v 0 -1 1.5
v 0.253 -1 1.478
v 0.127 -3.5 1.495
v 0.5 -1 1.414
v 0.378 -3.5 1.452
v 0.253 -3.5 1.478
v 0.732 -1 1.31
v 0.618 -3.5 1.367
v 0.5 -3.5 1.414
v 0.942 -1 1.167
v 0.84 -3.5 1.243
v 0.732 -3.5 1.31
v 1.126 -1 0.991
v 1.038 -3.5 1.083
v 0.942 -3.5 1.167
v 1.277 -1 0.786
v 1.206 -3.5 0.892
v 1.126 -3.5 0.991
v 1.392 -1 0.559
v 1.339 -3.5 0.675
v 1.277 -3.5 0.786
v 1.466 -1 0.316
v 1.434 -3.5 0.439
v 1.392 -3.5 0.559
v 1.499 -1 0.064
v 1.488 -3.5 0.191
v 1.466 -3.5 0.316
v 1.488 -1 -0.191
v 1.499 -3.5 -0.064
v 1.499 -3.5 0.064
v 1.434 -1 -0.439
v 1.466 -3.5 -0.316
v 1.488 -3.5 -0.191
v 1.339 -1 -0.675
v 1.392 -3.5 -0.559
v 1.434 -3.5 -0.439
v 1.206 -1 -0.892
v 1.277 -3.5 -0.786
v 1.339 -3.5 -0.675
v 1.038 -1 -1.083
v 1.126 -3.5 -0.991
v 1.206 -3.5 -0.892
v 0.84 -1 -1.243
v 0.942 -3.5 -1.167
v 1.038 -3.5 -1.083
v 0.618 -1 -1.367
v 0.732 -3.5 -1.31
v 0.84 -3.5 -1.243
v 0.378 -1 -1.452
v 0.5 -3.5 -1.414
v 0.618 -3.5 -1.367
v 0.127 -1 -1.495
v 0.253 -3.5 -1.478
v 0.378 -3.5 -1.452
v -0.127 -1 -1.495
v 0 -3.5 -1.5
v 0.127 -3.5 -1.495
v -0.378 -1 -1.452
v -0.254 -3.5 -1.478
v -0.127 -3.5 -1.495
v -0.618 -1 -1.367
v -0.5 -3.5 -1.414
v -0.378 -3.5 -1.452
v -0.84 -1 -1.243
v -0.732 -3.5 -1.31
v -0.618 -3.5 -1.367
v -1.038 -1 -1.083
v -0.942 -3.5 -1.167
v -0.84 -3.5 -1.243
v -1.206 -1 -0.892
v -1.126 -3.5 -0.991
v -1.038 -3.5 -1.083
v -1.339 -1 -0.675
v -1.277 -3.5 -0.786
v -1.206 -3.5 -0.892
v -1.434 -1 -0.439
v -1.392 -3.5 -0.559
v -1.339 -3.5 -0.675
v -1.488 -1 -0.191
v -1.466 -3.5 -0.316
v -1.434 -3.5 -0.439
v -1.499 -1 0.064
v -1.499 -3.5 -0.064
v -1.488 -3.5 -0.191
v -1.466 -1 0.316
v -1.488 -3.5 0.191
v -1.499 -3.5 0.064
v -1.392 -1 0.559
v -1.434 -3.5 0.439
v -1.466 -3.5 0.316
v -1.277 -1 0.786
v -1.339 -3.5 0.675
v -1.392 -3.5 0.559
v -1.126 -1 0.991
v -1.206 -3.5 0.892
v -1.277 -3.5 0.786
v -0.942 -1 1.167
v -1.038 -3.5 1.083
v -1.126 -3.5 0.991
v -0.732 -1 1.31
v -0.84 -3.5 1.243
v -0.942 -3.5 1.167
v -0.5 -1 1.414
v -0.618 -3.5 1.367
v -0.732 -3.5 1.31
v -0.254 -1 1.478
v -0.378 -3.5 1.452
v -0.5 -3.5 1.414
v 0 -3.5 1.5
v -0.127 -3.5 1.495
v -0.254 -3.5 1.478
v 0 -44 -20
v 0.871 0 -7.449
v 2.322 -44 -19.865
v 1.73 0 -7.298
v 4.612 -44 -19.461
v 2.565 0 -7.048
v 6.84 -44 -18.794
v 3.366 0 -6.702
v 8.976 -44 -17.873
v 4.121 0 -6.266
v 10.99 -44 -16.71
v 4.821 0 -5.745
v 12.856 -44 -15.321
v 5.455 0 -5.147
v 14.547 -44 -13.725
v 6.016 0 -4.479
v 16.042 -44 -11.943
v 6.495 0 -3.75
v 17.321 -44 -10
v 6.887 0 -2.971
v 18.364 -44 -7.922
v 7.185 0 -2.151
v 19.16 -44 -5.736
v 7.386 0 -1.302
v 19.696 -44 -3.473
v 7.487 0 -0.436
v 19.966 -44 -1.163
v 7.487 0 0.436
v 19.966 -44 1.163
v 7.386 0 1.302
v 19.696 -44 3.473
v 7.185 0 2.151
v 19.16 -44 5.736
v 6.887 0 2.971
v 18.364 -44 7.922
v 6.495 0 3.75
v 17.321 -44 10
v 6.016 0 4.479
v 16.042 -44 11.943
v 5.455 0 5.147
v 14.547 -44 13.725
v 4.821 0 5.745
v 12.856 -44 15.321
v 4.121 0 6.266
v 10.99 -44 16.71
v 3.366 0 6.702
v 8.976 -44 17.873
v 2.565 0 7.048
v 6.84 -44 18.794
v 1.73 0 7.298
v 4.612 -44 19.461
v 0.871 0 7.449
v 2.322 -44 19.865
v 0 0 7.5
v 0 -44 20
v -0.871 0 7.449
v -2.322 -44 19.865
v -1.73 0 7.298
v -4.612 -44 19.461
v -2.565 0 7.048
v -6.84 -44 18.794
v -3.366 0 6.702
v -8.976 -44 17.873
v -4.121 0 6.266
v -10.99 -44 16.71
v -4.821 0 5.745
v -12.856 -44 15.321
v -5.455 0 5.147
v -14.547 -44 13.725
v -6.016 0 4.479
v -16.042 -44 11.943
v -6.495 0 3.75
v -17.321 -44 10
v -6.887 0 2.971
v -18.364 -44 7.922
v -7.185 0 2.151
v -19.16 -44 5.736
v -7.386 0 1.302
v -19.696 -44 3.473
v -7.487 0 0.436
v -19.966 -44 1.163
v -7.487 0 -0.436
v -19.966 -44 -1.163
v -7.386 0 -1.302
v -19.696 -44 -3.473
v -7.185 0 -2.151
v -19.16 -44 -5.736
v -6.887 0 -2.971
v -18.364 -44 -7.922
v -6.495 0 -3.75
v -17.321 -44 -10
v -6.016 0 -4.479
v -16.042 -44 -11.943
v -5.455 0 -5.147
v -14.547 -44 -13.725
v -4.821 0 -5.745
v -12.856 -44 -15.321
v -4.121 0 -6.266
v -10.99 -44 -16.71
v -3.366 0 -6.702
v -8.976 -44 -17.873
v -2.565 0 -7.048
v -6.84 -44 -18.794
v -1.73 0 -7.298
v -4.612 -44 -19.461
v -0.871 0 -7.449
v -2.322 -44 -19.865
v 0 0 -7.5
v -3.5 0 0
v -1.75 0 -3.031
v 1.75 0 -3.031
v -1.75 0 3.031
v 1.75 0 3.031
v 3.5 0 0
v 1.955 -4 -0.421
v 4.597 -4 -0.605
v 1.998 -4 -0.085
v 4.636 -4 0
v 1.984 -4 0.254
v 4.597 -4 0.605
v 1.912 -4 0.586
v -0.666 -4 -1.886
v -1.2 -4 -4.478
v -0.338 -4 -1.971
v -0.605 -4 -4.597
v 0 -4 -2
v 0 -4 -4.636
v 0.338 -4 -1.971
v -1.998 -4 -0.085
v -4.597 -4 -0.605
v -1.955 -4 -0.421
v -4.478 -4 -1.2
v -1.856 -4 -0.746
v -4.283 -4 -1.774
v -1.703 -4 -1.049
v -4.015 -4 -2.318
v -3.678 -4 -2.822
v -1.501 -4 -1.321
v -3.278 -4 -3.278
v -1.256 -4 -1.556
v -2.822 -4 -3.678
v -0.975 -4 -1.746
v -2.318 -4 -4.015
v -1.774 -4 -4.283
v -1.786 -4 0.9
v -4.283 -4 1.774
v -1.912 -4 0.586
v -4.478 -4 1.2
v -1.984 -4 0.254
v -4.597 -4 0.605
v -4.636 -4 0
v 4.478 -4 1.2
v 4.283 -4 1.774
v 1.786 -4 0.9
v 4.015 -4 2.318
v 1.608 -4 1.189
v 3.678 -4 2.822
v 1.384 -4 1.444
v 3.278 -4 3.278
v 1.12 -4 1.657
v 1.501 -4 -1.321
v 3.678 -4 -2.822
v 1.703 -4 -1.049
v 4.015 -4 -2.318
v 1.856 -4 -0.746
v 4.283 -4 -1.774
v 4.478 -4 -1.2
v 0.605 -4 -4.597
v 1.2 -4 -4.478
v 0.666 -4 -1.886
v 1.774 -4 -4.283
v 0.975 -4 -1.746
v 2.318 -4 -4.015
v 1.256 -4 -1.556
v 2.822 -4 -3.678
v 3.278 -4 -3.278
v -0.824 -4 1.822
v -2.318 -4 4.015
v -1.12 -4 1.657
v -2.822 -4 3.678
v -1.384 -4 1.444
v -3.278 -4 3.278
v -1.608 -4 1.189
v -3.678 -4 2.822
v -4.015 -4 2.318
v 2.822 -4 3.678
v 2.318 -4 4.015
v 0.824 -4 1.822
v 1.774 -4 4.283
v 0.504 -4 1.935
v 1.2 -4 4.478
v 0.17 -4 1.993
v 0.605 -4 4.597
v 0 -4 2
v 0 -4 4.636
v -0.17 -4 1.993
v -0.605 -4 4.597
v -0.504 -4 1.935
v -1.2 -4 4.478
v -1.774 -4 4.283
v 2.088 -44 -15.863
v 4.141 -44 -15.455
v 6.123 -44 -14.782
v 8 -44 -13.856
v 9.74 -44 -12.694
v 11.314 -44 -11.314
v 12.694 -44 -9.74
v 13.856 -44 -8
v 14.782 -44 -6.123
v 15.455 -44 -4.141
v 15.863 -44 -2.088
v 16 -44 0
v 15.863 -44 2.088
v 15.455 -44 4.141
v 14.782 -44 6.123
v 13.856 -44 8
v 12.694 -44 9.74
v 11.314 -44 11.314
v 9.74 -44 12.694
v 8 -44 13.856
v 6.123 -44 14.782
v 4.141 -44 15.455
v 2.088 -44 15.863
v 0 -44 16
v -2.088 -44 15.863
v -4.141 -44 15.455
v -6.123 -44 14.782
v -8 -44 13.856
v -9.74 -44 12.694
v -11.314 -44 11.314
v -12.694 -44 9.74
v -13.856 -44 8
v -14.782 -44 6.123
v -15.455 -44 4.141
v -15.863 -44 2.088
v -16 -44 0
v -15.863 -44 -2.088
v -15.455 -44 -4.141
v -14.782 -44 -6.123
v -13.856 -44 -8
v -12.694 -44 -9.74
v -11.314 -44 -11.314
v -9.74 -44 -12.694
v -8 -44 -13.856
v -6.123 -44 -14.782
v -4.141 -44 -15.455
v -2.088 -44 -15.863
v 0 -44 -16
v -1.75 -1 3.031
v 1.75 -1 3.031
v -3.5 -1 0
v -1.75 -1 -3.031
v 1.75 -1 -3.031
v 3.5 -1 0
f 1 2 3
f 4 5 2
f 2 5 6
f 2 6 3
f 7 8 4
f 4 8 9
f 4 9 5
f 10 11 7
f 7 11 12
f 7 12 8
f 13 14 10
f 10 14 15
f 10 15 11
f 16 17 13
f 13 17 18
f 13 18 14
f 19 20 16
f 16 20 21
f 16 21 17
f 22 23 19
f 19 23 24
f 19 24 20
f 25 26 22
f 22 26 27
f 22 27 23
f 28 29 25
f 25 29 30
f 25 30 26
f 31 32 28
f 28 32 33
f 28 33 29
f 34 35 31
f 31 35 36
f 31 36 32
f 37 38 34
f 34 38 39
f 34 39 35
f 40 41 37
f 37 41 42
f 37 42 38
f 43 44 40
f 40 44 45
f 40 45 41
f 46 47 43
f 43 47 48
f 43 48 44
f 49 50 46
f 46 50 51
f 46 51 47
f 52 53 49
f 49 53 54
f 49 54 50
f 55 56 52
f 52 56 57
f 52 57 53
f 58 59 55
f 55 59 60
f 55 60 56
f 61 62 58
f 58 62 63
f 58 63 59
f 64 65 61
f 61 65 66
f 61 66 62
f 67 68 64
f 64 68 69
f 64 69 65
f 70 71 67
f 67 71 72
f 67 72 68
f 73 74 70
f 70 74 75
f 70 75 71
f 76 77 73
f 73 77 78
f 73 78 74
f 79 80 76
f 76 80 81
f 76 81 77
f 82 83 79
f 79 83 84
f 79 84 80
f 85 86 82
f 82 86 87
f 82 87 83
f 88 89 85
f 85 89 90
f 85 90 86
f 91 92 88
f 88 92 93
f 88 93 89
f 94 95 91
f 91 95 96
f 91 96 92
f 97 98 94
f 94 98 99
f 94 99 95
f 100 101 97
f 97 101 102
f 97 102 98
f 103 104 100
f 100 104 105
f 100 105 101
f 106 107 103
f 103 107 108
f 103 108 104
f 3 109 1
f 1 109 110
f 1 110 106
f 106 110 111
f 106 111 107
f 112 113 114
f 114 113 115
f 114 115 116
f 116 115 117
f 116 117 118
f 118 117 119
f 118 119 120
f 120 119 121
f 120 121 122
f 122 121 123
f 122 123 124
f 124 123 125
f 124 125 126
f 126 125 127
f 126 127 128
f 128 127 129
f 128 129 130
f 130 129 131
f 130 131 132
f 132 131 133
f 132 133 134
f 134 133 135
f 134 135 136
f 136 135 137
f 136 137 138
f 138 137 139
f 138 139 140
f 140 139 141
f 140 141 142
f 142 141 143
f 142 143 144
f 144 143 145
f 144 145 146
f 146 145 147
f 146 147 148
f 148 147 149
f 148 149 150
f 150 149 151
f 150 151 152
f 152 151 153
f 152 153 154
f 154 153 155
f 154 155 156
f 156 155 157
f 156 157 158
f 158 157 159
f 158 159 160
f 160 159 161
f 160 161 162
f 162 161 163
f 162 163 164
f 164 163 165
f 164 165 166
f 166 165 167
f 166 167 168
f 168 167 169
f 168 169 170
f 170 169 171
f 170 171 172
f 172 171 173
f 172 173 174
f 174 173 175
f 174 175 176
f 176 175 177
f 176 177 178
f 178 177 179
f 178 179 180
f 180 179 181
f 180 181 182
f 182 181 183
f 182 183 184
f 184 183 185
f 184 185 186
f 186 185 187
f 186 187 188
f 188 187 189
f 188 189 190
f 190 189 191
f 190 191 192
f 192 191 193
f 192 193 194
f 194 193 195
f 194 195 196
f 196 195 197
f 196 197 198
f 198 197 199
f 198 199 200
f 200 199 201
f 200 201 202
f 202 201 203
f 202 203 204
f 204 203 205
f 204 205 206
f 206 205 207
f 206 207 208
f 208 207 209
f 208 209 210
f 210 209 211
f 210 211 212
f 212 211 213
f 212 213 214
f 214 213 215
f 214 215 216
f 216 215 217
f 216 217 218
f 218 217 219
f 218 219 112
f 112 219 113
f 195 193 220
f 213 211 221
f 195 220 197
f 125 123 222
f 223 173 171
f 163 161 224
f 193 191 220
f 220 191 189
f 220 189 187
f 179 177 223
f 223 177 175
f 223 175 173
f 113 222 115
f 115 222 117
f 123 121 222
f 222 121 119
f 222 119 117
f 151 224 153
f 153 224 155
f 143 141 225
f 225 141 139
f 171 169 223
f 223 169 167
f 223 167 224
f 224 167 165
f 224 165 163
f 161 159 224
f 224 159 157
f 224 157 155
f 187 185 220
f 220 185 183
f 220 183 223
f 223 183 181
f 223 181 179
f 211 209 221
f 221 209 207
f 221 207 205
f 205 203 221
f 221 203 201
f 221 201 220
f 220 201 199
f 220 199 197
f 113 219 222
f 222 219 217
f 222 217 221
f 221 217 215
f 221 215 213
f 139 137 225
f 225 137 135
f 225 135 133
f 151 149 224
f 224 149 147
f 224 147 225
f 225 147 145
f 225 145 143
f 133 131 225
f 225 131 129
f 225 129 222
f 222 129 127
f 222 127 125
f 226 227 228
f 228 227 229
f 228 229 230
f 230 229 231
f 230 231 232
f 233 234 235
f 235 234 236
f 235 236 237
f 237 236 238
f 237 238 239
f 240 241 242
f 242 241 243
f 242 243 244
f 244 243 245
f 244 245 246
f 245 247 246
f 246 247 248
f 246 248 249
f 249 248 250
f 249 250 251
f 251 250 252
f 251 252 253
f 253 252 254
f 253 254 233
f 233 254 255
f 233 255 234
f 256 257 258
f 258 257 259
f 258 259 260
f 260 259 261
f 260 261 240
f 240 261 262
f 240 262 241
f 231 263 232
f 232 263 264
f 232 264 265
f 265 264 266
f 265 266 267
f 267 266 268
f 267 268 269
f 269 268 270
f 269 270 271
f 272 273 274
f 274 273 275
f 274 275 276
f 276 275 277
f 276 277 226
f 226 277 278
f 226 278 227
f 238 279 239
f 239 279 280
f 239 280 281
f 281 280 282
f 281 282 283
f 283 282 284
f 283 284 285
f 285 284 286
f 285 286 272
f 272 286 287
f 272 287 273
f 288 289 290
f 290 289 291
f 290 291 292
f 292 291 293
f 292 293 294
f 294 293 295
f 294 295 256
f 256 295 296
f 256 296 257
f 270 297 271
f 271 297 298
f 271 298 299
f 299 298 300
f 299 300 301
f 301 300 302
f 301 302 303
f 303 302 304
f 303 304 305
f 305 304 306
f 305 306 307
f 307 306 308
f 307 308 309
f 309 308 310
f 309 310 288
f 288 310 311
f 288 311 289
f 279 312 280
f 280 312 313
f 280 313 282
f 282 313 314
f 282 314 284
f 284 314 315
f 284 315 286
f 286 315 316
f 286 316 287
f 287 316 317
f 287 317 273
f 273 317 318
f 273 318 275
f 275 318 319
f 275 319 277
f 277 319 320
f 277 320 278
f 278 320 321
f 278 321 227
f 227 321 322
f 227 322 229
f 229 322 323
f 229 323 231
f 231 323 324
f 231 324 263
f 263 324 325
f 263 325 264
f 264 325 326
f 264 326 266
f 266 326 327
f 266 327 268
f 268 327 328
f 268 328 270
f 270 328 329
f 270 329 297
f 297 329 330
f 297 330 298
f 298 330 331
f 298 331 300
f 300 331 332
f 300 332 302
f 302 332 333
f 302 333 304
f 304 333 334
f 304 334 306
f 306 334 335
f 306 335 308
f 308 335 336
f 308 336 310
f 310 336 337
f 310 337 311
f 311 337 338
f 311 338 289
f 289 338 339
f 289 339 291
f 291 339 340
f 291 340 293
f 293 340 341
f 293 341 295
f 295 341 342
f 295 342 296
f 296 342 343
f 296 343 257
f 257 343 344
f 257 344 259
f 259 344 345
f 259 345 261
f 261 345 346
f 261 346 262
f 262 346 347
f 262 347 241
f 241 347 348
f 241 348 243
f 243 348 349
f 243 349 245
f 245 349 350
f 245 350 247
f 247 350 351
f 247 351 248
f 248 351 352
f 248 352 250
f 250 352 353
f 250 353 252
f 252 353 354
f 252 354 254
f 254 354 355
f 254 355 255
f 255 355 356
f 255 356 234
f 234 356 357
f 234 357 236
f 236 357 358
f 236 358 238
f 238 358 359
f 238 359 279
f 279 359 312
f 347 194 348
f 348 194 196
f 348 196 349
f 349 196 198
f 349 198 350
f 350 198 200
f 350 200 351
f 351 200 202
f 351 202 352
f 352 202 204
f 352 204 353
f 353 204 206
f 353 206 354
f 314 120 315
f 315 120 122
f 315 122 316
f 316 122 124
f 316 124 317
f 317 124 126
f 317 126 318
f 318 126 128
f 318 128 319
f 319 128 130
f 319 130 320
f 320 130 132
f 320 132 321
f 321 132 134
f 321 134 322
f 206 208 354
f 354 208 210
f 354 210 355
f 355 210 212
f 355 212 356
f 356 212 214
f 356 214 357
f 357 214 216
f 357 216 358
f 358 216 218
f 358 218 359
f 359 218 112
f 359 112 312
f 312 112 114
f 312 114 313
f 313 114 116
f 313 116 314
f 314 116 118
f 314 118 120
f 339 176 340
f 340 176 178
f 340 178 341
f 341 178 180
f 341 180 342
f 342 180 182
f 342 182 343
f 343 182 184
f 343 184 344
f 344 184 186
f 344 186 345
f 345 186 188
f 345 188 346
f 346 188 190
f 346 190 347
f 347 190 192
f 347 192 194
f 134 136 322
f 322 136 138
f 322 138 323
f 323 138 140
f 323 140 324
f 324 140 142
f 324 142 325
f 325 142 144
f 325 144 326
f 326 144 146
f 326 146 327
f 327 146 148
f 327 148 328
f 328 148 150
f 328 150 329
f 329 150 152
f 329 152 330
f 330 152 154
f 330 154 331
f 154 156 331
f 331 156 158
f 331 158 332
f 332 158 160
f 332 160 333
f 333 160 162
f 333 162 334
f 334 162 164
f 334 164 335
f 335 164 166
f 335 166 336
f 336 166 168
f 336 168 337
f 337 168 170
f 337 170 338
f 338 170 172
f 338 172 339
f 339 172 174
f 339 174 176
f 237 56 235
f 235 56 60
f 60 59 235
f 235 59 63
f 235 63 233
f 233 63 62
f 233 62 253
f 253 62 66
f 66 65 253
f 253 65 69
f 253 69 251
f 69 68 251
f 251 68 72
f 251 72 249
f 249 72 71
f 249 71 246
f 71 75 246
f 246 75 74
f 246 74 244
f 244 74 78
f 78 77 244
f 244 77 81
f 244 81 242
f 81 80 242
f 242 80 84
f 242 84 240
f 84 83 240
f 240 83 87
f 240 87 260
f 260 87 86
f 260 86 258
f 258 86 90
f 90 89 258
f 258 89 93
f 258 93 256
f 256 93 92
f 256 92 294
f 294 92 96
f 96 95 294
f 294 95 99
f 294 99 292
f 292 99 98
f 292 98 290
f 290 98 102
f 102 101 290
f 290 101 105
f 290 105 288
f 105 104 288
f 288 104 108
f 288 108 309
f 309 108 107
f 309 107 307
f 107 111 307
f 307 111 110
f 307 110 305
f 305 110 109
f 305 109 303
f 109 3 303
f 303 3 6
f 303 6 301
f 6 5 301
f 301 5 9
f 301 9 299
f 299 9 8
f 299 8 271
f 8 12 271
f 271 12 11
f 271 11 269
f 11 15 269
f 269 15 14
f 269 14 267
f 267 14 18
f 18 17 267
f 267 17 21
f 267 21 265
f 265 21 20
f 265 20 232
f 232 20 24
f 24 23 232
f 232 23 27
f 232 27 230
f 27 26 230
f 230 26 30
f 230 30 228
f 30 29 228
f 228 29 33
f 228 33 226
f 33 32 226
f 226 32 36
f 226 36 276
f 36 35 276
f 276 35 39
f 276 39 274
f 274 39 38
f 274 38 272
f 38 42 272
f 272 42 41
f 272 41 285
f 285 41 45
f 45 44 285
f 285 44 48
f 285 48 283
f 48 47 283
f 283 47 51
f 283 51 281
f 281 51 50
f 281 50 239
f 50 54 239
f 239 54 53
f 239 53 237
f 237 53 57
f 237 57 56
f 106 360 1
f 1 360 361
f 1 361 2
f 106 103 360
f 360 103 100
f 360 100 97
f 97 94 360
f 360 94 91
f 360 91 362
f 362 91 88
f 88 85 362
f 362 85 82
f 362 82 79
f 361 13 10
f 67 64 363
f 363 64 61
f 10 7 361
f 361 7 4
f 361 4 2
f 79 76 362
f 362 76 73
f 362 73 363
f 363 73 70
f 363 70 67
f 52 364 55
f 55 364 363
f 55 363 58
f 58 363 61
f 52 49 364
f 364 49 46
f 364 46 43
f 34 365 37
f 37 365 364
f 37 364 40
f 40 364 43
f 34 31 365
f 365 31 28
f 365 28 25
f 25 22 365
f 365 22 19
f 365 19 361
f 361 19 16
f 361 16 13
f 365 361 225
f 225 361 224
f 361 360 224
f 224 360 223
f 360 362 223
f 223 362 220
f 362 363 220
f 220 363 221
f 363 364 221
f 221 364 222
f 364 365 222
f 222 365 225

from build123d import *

# Parameters (mm, degrees)
SKETCH_4_R          = 1.5
CUT_EXTRUDE_1_DEPTH = 10
CHAMFER_1_SIZE      = 0.5
CUT_EXTRUDE_2_DEPTH = 1


with BuildPart() as part:
    # 草图3 → 旋转1 (revolve)
    with BuildSketch(Plane(origin=(0, 0, 0), x_dir=(0, 0, -1), z_dir=(1, 0, 0)), mode=Mode.PRIVATE) as revolve_1_sk:
        Polygon((-7.5, 0), (0, 0), (0, -4), (-4.636363636, -4), (-16, -44), (-20, -44), align=None)
    revolve(revolve_1_sk.sketch.rotate(Axis((0, 28.450677981, 0), (0, 1, 0)), 180), axis=Axis((0, 28.450677981, 0), (0, 1, 0)))

    # 草图4 → 切除-拉伸1 (cut)
    with BuildSketch(Plane(origin=(0, 0, 0), x_dir=(1, 0, 0), z_dir=(0, 1, 0))):
        with Locations(Location((0, 0, 0), (0, 0, 270))):
            Circle(SKETCH_4_R)
    extrude(amount=-CUT_EXTRUDE_1_DEPTH, mode=Mode.SUBTRACT)

    # 倒角1
    chamfer_1_edges = [part.edges().sort_by_distance(p)[0] for p in [
        (0, -4, -1.5),
    ]]
    chamfer(chamfer_1_edges, length=CHAMFER_1_SIZE)

    # 草图5 → 切除-拉伸2 (cut)
    with BuildSketch(Plane(origin=(0, 0, 0), x_dir=(1, 0, 0), z_dir=(0, 1, 0))):
        Polygon((3.5, 0), (1.75, 3.031088913), (-1.75, 3.031088913), (-3.5, 0), (-1.75, -3.031088913), (1.75, -3.031088913), align=None)
    extrude(amount=-CUT_EXTRUDE_2_DEPTH, mode=Mode.SUBTRACT)


solid = part.part
